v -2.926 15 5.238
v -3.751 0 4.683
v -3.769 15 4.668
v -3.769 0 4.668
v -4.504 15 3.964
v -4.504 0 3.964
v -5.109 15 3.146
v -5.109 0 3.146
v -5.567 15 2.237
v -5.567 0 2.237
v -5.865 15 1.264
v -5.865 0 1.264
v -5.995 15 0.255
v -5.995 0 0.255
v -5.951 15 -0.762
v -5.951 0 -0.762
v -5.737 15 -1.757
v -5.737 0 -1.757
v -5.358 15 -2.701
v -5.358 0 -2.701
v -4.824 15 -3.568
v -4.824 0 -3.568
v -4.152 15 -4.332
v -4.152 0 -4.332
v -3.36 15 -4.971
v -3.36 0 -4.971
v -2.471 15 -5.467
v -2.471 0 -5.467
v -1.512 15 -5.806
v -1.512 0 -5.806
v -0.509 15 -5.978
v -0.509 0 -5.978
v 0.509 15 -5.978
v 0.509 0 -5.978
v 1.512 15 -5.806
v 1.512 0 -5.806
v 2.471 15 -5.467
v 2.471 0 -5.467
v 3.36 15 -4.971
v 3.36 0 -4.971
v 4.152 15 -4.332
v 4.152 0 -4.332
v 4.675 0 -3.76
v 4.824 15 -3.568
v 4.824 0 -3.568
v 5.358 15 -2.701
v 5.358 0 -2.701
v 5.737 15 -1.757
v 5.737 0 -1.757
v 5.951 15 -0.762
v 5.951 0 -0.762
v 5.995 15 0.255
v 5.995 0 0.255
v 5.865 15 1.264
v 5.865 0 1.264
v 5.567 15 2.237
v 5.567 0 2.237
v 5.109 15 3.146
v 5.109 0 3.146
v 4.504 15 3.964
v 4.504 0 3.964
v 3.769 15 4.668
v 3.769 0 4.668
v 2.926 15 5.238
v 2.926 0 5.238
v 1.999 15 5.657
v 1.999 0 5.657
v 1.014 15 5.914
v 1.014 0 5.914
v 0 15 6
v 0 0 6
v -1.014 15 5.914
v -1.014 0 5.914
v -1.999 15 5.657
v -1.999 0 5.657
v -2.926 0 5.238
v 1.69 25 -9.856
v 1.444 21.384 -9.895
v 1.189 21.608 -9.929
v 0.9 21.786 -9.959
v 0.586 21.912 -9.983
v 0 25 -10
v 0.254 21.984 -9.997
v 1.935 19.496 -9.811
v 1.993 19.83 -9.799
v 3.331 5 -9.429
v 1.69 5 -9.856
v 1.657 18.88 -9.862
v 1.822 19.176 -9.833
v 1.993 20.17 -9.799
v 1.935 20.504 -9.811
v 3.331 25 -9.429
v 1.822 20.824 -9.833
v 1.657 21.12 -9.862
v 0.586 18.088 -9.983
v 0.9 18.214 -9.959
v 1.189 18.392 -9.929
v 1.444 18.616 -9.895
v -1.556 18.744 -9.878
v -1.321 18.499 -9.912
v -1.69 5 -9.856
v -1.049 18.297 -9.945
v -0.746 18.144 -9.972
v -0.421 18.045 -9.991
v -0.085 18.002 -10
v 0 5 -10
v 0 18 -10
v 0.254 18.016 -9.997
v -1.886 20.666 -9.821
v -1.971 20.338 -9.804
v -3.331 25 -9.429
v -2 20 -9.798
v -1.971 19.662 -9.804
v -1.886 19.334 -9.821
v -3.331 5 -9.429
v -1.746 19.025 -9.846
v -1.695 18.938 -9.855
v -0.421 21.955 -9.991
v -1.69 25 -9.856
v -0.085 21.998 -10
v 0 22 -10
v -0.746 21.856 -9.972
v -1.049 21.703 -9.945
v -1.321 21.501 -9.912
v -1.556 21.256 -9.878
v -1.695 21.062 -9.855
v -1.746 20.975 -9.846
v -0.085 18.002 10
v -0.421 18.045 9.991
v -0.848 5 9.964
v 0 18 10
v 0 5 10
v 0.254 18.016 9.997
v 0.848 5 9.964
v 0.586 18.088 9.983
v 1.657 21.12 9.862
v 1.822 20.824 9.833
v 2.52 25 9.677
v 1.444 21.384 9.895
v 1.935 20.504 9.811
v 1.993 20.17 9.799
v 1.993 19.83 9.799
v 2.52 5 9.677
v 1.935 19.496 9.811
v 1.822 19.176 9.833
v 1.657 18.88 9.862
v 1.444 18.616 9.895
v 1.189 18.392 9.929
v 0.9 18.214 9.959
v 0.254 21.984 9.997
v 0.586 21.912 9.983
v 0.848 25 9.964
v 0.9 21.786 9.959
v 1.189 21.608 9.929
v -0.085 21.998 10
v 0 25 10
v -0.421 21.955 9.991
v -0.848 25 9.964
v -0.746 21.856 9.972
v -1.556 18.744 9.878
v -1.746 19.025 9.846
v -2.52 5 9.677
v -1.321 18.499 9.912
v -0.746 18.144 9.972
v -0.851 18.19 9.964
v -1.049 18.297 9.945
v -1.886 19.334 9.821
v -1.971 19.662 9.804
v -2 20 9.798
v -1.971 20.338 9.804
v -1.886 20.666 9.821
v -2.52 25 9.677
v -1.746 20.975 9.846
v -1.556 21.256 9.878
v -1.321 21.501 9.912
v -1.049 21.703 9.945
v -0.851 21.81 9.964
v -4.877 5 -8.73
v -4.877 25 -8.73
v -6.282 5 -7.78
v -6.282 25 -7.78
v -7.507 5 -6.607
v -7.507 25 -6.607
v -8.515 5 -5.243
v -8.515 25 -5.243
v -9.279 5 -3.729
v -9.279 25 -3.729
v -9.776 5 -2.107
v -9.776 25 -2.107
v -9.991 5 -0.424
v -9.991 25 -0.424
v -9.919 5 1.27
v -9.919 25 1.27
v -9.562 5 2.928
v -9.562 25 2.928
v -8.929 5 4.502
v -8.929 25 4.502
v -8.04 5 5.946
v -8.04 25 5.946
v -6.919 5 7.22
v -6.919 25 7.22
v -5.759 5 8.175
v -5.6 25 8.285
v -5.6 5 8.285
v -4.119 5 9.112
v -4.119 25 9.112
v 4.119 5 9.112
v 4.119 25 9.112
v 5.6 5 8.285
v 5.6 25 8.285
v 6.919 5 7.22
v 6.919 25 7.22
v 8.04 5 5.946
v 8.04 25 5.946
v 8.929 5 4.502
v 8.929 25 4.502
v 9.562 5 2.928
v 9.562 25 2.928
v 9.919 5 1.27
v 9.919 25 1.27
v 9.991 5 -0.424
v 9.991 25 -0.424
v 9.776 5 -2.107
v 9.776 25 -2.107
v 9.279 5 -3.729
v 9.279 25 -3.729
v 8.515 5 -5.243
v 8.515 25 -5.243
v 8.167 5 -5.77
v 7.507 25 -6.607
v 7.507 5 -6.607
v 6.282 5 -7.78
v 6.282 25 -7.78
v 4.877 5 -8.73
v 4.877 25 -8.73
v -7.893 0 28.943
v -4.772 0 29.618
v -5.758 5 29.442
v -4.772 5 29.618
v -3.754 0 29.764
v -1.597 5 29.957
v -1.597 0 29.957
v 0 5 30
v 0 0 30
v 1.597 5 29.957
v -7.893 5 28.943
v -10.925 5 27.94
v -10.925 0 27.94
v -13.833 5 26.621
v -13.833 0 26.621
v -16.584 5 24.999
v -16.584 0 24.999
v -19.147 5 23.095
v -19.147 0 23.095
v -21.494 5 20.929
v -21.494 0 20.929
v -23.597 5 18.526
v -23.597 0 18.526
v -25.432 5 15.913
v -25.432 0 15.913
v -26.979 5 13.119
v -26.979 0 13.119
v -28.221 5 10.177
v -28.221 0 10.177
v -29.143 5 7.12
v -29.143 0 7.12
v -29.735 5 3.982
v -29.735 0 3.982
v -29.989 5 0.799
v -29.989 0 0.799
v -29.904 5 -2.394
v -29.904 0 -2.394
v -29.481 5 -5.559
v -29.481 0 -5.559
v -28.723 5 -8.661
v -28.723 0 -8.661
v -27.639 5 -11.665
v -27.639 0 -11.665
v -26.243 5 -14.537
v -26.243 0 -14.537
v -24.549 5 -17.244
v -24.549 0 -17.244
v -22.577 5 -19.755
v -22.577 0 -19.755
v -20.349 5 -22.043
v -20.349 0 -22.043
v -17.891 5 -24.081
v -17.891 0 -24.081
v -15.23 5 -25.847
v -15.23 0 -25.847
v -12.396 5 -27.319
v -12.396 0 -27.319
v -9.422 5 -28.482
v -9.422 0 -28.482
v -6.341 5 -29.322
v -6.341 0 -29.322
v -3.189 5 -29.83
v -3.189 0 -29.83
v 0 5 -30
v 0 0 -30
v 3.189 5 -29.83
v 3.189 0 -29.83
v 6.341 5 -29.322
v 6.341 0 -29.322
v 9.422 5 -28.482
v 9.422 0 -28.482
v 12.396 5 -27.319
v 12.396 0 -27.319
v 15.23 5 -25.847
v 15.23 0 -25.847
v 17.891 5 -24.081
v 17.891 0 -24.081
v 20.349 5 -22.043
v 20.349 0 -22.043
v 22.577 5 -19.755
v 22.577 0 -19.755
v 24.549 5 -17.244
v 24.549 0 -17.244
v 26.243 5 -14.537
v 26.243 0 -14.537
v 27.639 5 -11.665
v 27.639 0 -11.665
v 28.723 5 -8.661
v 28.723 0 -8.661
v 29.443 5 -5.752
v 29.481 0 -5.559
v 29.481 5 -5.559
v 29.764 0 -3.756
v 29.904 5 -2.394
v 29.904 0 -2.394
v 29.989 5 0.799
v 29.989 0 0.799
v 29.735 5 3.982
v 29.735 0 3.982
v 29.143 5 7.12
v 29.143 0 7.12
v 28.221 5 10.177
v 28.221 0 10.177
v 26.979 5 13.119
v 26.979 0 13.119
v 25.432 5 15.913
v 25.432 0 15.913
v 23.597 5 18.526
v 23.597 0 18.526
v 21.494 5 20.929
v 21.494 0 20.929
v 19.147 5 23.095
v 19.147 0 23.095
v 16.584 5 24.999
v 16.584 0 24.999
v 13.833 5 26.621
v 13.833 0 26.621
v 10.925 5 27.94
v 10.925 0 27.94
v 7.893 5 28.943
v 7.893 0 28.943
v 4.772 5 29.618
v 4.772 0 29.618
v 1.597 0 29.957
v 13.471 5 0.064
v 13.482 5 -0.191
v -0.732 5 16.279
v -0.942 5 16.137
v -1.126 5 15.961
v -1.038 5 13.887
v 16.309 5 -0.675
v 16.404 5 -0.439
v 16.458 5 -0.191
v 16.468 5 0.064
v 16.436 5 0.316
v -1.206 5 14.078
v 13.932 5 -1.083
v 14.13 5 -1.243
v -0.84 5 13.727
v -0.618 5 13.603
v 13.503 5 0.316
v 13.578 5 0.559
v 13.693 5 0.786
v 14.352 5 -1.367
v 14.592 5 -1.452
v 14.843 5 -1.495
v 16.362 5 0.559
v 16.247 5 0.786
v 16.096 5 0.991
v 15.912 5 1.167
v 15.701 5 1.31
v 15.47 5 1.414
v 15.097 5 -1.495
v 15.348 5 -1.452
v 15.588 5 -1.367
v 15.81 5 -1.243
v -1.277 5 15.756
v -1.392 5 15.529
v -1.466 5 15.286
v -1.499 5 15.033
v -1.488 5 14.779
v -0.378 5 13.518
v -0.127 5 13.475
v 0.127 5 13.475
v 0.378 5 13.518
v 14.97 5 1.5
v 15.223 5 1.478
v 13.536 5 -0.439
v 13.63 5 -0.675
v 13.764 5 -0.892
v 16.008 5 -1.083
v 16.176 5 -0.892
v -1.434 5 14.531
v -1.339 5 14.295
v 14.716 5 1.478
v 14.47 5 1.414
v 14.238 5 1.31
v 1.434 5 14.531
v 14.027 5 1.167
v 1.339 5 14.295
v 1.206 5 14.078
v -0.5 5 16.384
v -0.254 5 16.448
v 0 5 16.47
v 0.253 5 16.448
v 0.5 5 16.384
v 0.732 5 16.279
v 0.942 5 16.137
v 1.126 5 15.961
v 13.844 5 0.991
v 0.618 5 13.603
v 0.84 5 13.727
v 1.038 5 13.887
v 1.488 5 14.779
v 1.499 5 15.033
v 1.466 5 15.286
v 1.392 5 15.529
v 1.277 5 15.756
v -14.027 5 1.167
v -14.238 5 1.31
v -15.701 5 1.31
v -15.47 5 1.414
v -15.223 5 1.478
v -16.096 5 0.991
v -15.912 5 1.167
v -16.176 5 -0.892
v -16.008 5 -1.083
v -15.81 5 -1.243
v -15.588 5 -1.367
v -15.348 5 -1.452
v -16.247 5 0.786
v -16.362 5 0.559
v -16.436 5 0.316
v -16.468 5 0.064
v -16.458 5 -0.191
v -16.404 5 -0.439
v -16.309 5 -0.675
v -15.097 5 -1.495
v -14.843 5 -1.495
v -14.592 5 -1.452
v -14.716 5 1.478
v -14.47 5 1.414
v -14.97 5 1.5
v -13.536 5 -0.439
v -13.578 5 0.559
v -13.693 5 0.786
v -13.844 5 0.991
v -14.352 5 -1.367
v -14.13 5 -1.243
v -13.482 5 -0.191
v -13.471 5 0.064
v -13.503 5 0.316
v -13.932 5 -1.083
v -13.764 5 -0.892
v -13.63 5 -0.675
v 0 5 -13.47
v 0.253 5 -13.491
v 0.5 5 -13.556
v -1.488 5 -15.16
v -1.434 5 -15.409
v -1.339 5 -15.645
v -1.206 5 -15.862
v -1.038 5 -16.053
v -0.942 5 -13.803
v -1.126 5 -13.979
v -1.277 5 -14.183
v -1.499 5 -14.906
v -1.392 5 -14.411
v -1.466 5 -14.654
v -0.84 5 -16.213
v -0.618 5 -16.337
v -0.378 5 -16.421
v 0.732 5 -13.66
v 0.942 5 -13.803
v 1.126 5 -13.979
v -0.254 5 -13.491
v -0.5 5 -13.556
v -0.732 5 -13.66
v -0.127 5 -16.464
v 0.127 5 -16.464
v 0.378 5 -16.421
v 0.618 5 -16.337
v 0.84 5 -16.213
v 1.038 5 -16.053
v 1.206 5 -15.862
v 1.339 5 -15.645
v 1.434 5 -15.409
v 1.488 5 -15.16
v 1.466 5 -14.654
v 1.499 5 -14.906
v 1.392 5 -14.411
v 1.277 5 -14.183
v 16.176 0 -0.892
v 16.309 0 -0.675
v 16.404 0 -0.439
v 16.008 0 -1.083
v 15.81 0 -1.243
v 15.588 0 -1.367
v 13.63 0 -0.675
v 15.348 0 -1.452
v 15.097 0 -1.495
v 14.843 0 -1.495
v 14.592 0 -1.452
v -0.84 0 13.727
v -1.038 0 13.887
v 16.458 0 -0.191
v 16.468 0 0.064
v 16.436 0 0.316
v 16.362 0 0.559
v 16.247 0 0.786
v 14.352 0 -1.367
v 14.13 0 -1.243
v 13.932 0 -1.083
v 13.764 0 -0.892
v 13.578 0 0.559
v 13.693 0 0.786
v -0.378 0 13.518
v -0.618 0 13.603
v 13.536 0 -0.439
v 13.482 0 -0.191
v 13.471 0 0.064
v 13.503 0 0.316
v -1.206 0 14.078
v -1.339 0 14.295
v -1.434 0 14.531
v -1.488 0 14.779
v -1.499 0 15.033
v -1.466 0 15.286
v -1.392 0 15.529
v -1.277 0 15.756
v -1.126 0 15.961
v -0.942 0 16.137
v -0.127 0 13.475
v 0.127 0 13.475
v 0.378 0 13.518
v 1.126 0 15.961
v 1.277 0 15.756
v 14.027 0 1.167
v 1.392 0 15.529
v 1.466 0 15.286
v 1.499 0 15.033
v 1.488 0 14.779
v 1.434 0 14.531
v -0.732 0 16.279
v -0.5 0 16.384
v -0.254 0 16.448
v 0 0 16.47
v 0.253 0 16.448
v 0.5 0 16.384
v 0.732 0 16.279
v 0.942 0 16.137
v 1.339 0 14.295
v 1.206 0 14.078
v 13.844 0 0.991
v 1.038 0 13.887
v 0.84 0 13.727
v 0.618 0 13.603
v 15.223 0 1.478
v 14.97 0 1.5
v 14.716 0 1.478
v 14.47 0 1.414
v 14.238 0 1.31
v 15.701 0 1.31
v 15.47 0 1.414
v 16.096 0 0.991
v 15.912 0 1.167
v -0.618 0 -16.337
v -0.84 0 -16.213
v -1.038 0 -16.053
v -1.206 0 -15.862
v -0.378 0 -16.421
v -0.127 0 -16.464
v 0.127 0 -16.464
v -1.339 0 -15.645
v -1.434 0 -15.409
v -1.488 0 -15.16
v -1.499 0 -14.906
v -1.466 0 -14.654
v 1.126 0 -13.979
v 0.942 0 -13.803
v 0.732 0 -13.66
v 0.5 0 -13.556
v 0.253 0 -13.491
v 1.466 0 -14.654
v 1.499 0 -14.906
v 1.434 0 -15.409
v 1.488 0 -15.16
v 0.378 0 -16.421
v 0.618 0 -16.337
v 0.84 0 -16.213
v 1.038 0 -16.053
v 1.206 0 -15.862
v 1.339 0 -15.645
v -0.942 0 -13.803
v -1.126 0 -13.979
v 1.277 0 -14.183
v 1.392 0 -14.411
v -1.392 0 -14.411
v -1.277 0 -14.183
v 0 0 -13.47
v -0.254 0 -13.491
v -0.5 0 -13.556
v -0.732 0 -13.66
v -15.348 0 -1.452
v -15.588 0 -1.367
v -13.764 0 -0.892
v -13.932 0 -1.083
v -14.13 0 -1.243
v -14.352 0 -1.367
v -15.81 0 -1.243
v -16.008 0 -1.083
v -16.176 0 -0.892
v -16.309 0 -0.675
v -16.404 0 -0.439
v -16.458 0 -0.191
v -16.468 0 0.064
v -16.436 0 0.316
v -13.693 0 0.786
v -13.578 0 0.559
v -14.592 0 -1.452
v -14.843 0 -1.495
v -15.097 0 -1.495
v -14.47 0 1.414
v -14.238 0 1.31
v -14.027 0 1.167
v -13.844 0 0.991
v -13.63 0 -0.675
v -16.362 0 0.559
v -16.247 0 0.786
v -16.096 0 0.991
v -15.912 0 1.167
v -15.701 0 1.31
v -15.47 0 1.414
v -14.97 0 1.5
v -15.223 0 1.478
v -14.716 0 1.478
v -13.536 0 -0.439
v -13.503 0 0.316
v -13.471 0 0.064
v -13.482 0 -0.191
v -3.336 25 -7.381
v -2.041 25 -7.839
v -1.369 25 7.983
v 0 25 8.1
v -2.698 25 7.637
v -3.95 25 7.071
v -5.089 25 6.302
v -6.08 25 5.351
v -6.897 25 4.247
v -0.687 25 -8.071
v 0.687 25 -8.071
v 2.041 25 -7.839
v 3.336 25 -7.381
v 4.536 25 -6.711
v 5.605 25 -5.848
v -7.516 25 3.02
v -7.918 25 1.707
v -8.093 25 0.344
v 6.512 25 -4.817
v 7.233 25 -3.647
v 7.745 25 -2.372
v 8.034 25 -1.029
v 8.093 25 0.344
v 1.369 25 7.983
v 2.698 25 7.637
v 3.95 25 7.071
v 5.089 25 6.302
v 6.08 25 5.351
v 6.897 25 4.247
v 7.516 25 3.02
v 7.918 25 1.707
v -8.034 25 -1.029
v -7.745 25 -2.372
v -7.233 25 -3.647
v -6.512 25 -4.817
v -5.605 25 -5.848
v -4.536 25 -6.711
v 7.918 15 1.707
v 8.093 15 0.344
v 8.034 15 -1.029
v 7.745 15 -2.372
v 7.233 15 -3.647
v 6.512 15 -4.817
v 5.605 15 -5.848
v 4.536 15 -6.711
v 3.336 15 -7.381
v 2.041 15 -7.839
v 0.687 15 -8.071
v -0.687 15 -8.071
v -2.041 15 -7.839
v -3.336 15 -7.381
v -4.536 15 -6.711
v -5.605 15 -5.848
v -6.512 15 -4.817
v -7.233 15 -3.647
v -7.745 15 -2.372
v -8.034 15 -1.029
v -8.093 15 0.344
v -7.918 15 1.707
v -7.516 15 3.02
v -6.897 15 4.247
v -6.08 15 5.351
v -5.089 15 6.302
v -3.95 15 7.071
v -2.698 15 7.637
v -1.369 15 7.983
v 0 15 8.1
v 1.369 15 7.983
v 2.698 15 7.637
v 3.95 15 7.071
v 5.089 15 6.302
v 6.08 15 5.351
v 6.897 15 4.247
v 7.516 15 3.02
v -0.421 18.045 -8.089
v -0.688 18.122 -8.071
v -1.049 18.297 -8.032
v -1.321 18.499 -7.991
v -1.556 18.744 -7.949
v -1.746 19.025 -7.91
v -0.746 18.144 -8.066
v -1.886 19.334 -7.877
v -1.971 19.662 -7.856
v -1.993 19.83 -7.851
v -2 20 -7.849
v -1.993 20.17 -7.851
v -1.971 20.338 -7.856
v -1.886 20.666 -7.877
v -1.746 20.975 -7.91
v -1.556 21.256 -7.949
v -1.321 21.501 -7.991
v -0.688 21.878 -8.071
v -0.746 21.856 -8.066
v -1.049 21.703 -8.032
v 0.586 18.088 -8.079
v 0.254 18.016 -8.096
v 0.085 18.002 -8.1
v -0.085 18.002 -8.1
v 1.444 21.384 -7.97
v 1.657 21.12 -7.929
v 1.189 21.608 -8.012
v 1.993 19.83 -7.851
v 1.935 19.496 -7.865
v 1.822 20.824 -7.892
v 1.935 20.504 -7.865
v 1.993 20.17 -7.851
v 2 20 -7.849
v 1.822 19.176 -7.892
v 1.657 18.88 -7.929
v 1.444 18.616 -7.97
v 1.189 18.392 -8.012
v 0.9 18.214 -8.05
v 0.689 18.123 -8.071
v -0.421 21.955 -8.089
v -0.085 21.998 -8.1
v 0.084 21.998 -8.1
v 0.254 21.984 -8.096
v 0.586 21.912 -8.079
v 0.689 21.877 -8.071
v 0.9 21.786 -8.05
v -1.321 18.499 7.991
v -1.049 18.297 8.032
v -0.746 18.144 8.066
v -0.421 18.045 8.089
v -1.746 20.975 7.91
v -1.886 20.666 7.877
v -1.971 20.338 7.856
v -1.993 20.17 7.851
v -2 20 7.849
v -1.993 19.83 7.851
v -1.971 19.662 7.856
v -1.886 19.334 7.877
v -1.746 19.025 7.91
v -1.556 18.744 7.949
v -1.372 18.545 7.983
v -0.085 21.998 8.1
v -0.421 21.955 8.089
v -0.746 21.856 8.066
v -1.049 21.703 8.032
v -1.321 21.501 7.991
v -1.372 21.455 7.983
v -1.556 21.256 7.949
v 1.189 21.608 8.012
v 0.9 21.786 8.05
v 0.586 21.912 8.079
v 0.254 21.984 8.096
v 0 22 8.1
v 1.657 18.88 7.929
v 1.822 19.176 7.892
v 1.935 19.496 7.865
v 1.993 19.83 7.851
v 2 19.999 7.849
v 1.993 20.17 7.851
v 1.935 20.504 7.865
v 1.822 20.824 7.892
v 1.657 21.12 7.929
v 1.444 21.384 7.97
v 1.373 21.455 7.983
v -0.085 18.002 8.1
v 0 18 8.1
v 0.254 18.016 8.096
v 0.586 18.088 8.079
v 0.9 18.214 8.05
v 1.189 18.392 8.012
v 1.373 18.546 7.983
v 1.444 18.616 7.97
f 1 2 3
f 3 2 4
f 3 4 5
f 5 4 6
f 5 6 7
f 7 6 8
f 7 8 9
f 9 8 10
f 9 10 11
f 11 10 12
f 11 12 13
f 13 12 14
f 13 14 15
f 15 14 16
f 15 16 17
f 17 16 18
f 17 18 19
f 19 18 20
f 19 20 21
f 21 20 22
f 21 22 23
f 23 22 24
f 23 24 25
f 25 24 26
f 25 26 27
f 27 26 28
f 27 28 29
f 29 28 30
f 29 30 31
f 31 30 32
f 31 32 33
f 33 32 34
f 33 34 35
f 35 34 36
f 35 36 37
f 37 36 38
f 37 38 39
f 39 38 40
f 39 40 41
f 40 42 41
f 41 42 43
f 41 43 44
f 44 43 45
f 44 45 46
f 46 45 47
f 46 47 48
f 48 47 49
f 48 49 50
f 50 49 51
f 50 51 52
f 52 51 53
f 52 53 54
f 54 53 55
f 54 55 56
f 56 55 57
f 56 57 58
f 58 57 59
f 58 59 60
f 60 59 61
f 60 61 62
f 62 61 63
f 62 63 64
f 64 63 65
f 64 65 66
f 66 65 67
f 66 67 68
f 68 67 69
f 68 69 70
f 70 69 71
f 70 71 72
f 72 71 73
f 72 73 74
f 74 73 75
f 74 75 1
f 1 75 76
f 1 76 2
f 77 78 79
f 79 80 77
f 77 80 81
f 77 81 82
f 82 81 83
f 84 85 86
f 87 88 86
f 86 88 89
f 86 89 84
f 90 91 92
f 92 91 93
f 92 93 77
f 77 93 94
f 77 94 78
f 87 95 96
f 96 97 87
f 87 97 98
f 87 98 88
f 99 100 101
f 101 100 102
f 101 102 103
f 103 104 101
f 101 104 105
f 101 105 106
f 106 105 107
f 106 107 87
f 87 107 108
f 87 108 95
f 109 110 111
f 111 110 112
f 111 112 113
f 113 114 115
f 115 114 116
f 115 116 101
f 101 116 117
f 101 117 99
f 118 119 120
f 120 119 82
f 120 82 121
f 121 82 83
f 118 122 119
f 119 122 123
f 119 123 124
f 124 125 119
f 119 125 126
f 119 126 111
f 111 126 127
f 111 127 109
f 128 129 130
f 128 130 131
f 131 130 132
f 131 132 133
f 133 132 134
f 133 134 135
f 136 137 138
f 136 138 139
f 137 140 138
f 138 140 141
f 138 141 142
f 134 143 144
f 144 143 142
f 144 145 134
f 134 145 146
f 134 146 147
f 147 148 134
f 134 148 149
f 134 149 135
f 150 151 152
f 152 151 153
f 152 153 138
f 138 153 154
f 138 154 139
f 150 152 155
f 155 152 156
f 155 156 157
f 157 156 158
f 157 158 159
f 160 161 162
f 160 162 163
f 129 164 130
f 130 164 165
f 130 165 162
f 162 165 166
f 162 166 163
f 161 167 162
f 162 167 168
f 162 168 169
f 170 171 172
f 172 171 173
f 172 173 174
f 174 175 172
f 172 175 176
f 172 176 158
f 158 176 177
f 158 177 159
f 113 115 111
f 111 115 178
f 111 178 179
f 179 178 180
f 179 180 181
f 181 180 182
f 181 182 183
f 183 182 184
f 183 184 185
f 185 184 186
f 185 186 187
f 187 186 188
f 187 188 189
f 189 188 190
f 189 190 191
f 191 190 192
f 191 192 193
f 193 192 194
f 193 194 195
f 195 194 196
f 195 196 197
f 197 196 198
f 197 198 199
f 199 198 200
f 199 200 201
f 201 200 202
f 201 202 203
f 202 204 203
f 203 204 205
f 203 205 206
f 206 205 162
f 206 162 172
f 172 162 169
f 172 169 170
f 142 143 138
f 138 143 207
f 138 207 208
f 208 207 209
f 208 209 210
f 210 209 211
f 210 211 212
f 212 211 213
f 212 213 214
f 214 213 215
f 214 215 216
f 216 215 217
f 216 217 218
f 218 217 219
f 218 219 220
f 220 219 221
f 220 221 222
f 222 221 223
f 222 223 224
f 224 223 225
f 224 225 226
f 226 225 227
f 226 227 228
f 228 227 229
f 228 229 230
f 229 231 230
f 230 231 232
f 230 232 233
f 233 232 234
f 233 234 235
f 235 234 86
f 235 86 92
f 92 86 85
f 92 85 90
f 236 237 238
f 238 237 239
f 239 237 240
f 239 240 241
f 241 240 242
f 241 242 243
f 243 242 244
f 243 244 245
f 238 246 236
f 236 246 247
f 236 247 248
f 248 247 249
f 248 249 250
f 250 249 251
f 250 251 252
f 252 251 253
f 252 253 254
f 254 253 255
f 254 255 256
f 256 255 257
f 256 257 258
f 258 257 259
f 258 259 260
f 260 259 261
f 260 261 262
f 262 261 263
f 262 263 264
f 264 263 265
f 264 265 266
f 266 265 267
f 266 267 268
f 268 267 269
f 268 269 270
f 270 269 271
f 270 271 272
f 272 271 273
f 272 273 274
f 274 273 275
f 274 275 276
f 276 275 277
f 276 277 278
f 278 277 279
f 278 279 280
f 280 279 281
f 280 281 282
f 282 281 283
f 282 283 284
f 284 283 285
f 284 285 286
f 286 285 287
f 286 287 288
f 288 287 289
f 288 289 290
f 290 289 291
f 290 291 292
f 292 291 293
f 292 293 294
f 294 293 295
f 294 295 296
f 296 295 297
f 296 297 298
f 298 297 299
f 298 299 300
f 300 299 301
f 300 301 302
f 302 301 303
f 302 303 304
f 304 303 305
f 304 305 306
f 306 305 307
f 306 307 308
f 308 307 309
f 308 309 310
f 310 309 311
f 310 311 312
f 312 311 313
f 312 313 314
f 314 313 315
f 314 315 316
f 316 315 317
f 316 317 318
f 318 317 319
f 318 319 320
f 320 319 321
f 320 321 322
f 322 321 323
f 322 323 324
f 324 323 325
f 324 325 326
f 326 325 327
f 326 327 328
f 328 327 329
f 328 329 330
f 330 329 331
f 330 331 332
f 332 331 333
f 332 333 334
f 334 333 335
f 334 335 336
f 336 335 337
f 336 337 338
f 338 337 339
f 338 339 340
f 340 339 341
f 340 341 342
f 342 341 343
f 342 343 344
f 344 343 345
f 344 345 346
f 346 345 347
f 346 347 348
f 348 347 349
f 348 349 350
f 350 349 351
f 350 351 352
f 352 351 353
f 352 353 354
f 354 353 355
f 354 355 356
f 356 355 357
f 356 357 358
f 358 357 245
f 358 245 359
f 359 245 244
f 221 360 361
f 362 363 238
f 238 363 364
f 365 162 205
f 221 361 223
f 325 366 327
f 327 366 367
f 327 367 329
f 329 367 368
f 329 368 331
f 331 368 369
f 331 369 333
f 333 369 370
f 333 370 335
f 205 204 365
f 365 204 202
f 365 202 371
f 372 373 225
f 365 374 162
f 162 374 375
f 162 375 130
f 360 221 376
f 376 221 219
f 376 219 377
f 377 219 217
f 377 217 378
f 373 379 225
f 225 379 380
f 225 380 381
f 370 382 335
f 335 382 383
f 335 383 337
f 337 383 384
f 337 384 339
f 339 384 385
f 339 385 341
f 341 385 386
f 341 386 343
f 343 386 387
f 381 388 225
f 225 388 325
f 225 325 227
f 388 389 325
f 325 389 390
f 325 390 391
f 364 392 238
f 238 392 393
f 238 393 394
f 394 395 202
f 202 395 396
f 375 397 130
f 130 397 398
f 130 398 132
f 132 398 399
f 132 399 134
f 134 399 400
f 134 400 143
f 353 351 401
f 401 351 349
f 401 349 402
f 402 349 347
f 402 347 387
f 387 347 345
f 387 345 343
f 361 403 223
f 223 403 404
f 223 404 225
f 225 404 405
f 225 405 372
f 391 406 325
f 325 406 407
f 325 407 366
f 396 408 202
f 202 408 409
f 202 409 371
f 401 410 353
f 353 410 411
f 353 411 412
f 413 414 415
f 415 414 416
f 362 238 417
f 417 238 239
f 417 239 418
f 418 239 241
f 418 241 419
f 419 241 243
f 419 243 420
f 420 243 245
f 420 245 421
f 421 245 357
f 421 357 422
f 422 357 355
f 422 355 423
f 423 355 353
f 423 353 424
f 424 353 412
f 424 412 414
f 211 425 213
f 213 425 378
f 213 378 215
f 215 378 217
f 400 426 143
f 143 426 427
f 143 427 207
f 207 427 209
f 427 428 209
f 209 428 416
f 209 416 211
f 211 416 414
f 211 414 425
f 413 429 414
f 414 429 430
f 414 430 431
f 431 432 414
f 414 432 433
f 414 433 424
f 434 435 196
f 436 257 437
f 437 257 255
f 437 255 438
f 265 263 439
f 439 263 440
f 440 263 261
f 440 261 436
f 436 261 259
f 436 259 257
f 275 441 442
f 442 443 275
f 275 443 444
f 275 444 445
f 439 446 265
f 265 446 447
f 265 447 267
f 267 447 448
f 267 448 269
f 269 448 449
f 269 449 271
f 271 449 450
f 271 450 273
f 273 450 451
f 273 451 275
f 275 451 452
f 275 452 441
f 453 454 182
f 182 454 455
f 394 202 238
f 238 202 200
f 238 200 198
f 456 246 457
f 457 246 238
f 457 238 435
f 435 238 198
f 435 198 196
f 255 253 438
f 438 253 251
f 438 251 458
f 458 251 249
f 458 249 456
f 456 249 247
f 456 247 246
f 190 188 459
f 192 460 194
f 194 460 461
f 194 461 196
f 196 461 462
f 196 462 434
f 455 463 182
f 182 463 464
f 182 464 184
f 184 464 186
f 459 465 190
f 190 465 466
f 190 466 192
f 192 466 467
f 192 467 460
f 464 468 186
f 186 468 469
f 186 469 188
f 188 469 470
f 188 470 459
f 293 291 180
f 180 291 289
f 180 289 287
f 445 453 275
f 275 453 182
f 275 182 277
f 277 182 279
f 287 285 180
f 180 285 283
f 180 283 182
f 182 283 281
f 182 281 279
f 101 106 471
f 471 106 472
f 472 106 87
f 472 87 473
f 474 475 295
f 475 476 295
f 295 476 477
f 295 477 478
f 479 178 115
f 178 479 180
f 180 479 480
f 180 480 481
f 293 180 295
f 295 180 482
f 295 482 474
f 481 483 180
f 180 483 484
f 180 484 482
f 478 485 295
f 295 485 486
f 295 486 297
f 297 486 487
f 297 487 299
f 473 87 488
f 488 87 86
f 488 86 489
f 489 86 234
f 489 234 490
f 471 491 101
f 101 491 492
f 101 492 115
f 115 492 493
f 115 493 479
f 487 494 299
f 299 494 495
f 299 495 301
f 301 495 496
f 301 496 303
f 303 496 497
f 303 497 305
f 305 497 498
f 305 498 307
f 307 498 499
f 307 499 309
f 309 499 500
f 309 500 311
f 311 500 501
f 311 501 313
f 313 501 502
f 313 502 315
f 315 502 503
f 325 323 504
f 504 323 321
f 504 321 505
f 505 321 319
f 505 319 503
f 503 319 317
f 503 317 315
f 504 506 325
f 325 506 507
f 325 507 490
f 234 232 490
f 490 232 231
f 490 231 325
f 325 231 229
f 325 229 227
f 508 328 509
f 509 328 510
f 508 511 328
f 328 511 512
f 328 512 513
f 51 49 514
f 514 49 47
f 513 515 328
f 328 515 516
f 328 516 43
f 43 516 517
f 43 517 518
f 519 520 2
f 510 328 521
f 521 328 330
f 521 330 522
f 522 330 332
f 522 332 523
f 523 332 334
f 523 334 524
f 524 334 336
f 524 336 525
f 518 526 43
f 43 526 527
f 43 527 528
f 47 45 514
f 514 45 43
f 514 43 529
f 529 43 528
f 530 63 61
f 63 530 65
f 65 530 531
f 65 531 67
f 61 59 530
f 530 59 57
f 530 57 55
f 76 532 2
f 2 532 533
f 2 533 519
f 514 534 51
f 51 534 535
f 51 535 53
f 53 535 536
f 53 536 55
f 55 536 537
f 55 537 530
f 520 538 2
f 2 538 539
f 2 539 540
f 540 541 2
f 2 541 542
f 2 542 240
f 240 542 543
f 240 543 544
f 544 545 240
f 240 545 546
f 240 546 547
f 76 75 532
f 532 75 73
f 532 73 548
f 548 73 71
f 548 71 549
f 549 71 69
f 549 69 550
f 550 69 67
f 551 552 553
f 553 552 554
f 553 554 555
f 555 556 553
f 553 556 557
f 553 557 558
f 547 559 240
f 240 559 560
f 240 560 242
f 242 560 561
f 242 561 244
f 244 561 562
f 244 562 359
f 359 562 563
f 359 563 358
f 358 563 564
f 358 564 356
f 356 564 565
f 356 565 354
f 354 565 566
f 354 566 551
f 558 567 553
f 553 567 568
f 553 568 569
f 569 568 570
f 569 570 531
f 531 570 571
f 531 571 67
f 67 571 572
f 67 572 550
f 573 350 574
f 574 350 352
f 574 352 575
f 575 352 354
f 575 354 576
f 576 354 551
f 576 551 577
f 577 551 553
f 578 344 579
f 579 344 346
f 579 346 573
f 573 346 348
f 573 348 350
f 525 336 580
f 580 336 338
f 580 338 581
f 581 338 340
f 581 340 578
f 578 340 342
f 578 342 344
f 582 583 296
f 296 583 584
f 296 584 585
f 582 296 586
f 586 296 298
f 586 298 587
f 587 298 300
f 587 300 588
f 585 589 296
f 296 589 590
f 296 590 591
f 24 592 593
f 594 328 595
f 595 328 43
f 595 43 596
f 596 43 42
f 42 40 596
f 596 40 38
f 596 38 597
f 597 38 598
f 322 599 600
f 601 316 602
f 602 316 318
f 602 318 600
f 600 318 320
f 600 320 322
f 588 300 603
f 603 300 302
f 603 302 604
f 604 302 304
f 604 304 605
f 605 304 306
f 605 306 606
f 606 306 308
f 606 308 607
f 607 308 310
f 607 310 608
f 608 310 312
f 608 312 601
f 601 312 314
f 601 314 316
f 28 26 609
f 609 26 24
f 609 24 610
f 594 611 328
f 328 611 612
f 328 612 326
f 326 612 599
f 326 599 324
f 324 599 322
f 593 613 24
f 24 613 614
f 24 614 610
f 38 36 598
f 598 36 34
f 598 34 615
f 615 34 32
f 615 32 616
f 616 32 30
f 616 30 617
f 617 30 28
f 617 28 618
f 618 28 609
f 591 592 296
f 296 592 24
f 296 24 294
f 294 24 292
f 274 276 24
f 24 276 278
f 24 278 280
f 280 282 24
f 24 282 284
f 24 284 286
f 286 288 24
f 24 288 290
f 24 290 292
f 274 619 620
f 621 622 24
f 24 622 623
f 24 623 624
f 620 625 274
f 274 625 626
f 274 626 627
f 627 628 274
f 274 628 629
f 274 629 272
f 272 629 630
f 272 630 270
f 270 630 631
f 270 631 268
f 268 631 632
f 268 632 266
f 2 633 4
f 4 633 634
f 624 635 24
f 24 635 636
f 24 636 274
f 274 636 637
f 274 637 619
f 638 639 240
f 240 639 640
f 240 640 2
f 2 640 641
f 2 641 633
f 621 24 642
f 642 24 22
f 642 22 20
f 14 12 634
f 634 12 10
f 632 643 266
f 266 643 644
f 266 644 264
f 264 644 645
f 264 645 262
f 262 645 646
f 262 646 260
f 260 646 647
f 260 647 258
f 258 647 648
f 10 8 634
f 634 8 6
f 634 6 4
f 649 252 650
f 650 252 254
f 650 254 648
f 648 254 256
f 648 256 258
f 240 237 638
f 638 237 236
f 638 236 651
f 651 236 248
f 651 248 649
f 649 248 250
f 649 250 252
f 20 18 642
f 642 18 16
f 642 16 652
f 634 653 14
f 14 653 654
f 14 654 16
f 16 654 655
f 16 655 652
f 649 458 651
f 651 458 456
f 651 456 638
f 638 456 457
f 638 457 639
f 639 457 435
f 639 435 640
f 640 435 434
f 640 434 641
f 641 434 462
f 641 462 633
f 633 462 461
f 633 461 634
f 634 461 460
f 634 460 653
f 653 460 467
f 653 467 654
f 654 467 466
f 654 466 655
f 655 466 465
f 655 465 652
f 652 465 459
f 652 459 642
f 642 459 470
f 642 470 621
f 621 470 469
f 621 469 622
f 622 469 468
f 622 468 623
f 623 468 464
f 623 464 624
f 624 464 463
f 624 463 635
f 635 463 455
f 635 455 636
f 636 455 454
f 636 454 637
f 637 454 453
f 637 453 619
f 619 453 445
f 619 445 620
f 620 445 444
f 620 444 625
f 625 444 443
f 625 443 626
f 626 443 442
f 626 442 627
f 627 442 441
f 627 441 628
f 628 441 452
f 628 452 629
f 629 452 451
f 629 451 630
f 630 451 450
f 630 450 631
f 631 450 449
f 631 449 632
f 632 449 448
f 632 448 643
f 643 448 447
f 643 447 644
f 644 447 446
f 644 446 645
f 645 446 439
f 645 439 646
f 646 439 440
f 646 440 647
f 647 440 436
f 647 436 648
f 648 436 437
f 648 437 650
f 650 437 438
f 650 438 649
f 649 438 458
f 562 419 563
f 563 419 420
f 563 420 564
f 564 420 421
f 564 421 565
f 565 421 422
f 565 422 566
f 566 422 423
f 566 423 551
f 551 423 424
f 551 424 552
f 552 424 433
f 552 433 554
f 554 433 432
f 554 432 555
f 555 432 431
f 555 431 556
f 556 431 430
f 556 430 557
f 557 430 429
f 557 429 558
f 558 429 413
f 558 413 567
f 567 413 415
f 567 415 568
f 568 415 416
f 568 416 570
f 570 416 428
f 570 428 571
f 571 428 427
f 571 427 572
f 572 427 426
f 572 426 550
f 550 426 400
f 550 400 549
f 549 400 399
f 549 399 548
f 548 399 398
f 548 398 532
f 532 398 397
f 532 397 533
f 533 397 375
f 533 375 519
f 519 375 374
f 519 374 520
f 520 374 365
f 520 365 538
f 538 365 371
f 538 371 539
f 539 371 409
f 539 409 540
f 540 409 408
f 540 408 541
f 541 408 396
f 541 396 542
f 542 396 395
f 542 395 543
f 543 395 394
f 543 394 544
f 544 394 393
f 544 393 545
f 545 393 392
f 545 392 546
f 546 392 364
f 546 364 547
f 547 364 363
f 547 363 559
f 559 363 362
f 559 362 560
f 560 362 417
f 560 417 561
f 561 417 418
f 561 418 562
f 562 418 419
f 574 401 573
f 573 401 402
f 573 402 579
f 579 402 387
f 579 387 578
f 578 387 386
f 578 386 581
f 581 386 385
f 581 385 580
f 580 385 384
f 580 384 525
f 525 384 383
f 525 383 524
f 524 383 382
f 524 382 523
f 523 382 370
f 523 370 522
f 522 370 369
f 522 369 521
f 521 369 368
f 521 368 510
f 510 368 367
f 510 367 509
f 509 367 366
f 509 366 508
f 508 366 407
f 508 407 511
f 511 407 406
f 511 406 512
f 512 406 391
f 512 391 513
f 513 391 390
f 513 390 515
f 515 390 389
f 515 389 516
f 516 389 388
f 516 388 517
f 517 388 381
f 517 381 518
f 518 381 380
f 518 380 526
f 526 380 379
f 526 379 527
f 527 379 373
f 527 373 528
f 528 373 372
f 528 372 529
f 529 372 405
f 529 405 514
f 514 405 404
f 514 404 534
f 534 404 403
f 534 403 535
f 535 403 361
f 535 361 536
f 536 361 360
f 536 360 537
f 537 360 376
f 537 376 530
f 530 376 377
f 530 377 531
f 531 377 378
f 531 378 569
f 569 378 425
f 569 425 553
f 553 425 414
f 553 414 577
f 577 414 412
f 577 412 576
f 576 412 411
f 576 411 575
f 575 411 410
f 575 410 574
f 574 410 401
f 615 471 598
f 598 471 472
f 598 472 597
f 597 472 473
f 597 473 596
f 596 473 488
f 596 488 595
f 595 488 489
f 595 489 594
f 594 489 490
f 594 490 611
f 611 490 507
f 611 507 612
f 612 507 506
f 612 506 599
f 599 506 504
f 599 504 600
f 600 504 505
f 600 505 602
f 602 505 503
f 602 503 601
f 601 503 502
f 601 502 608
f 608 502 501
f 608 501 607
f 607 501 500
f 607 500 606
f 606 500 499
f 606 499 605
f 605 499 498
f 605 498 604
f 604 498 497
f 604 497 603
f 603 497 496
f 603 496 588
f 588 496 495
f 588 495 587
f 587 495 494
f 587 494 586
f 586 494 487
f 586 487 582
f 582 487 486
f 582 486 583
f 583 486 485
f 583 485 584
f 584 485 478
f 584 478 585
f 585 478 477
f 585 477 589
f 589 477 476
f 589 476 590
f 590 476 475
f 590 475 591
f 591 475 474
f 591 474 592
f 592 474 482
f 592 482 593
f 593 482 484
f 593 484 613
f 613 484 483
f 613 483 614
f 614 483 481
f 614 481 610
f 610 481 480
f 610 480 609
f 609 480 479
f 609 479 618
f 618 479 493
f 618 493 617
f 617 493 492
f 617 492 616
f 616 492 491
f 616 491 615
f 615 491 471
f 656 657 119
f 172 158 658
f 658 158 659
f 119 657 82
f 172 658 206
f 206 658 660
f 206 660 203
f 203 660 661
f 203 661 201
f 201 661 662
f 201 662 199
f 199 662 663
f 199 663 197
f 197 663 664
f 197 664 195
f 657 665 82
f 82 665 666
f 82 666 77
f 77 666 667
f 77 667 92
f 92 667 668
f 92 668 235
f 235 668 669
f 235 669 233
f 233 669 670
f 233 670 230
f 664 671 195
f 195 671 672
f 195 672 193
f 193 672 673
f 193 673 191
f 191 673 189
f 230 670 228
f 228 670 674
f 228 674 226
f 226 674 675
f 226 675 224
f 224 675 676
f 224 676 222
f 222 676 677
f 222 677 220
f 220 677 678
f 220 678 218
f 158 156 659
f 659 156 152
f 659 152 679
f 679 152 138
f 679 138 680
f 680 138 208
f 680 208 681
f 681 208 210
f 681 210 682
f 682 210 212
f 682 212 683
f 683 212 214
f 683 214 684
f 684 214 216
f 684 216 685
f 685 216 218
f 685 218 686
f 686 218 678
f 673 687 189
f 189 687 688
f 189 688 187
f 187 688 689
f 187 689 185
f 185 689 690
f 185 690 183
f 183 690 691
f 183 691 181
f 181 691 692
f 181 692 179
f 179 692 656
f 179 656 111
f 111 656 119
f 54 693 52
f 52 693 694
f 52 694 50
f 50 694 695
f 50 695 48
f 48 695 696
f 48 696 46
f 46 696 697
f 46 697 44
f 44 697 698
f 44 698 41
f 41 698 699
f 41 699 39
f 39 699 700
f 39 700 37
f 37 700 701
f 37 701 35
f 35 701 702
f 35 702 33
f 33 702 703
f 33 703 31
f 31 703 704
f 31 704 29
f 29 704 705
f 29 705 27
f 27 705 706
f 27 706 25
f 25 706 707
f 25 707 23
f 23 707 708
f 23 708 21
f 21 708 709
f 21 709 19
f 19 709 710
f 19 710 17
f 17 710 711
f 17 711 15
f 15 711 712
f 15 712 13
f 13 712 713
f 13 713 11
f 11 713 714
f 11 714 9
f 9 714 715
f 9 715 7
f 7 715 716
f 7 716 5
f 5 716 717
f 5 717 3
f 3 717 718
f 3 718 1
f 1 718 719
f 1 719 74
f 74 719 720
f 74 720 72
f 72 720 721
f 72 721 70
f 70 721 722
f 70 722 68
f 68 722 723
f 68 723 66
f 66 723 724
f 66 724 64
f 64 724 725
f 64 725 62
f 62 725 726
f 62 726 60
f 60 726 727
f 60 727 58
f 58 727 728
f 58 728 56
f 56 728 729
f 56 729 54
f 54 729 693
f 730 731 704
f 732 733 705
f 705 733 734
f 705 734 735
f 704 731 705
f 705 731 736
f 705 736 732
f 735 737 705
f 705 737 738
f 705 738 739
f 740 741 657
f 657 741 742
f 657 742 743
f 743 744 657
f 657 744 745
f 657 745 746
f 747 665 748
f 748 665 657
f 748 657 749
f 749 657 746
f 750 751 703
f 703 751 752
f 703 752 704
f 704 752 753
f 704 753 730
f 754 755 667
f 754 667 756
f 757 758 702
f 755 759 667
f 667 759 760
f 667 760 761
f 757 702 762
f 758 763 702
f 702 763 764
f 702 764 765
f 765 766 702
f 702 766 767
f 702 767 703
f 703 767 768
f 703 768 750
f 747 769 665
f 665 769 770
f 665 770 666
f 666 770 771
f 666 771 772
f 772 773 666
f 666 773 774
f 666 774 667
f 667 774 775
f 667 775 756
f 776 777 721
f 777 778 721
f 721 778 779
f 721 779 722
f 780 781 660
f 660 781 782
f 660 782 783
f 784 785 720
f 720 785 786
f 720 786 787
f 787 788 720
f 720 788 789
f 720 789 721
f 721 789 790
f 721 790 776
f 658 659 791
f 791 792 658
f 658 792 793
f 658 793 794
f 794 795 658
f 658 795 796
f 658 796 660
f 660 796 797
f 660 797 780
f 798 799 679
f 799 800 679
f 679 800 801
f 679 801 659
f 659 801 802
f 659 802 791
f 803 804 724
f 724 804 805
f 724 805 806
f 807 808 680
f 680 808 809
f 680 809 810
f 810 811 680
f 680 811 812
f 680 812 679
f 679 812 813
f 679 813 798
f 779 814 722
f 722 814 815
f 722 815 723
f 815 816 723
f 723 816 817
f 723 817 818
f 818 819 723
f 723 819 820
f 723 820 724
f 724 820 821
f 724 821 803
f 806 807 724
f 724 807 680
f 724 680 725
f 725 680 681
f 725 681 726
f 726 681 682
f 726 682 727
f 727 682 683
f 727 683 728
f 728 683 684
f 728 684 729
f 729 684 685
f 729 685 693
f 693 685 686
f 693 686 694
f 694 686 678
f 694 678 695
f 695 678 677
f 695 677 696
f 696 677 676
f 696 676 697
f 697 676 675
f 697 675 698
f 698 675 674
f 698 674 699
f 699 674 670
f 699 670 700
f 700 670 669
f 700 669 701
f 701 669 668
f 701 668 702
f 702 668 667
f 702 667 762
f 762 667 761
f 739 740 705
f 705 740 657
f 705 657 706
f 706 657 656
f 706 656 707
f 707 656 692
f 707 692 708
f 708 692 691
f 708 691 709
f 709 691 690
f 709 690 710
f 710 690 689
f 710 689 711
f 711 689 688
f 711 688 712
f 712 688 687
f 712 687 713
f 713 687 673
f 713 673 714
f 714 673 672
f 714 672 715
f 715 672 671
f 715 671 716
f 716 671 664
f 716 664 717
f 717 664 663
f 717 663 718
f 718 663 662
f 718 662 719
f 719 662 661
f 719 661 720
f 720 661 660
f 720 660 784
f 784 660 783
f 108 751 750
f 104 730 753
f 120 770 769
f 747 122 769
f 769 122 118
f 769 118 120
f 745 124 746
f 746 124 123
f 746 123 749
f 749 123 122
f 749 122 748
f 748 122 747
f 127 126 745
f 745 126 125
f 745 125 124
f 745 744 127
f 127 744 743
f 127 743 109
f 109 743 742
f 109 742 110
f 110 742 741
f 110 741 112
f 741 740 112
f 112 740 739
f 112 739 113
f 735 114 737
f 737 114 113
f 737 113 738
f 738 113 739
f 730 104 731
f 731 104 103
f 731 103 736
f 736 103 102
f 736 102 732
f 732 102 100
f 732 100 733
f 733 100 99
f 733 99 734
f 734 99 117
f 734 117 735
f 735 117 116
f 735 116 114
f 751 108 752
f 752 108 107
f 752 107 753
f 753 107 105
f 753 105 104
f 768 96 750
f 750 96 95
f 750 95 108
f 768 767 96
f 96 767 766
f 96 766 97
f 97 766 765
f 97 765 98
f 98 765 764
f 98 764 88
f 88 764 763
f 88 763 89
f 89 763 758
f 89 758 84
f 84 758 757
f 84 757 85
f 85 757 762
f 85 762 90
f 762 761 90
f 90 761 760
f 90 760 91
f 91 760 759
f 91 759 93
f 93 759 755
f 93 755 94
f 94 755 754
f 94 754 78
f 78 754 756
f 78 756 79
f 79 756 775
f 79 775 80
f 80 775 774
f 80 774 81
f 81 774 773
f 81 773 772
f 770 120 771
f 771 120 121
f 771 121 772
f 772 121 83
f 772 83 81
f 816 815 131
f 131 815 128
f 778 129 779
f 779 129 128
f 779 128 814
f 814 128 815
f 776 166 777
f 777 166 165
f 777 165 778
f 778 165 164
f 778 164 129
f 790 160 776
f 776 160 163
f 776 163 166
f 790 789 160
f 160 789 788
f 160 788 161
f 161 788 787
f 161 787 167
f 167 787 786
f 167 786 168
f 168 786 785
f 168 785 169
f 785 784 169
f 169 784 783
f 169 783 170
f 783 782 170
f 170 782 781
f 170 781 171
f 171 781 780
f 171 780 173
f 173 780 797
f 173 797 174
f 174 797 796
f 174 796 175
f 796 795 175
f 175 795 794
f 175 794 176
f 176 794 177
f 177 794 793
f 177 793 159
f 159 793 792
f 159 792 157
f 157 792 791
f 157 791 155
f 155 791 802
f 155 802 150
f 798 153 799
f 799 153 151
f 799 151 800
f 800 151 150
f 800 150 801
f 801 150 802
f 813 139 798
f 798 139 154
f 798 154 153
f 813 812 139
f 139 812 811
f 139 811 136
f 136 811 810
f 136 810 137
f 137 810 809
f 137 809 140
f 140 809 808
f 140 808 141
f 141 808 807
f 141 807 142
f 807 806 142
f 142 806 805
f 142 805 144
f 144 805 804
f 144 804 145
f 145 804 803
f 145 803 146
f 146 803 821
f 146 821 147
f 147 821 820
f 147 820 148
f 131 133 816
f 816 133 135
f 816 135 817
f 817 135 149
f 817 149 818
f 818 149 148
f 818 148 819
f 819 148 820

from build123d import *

# Parameters (mm, degrees)
SKETCH1_R           = 30
BOSS_EXTRUDE1_DEPTH = 5
SKETCH2_R           = 10
BOSS_EXTRUDE2_DEPTH = 90
SKETCH4_R           = 6
CUT_EXTRUDE2_DEPTH  = 200
SKETCH5_R           = 1.5
CUT_EXTRUDE3_DEPTH  = 10
SKETCH6_R           = 8
CUT_EXTRUDE4_DEPTH  = 10
SKETCH8_R           = 2
CUT_EXTRUDE5_DEPTH  = 20
CUT_EXTRUDE6_START  = -70
SKETCH10_R          = 10
CUT_EXTRUDE6_DEPTH  = 70
SKETCH12_R          = 8.1
CUT_EXTRUDE7_DEPTH  = 10
SKETCH13_R          = 2
CUT_EXTRUDE8_DEPTH  = 20


with BuildPart() as part:
    # Sketch1 → Boss-Extrude1 (new body)
    with BuildSketch(Plane(origin=(0, 0, 0), x_dir=(1, 0, 0), z_dir=(0, 1, 0))):
        with Locations(Location((0, 0, 0), (0, 0, 270))):
            Circle(SKETCH1_R)
    extrude(amount=BOSS_EXTRUDE1_DEPTH)

    # Sketch2 → Boss-Extrude2 (add)
    with BuildSketch(Plane(origin=(0, 5, 0), x_dir=(1, 0, 0), z_dir=(0, 1, 0))):
        with Locations(Location((0, 0, 0), (0, 0, 90))):
            Circle(SKETCH2_R)
    extrude(amount=BOSS_EXTRUDE2_DEPTH)

    # Sketch4 → Cut-Extrude2 (cut)
    with BuildSketch(Plane(origin=(0, 95, 0), x_dir=(1, 0, 0), z_dir=(0, 1, 0))):
        with Locations(Location((0, 0, 0), (0, 0, 270))):
            Circle(SKETCH4_R)
    extrude(amount=-CUT_EXTRUDE2_DEPTH, mode=Mode.SUBTRACT)

    # Sketch5 → Cut-Extrude3 (cut)
    with BuildSketch(Plane(origin=(0, 5, 0), x_dir=(1, 0, 0), z_dir=(0, 1, 0))):
        with Locations(Location((0, 14.969819474, 0), (0, 0, 270))):
            Circle(SKETCH5_R)
        with Locations(Location((14.969819474, 0, 0), (0, 0, 270))):
            Circle(SKETCH5_R)
        with Locations(Location((0, -14.969819474, 0), (0, 0, 270))):
            Circle(SKETCH5_R)
        with Locations(Location((-14.969819474, 0, 0), (0, 0, 270))):
            Circle(SKETCH5_R)
    extrude(amount=-CUT_EXTRUDE3_DEPTH, mode=Mode.SUBTRACT)

    # Sketch6 → Cut-Extrude4 (cut)
    with BuildSketch(Plane(origin=(0, 95, 0), x_dir=(1, 0, 0), z_dir=(0, 1, 0))):
        with Locations(Location((0, 0, 0), (0, 0, 270))):
            Circle(SKETCH6_R)
    extrude(amount=-CUT_EXTRUDE4_DEPTH, mode=Mode.SUBTRACT)

    # Sketch8 → Cut-Extrude5 (cut)
    with BuildSketch(Plane(origin=(0, 95, -10), x_dir=(-1, 0, 0), z_dir=(0, 0, -1))):
        with Locations((0, -5)):
            Circle(SKETCH8_R)
    extrude(amount=-CUT_EXTRUDE5_DEPTH, mode=Mode.SUBTRACT)

    # Sketch10 → Cut-Extrude6 (cut)
    with BuildSketch(Plane(origin=(0, 95, 0), x_dir=(1, 0, 0), z_dir=(0, 1, 0)).offset(CUT_EXTRUDE6_START)):
        with Locations(Location((0, 0, 0), (0, 0, 90))):
            Circle(SKETCH10_R)
    extrude(amount=CUT_EXTRUDE6_DEPTH, mode=Mode.SUBTRACT)

    # Sketch12 → Cut-Extrude7 (cut)
    with BuildSketch(Plane(origin=(0, 25, 0), x_dir=(1, 0, 0), z_dir=(0, 1, 0))):
        with Locations(Location((0, 0, 0), (0, 0, 270))):
            Circle(SKETCH12_R)
    extrude(amount=-CUT_EXTRUDE7_DEPTH, mode=Mode.SUBTRACT)

    # Sketch13 → Cut-Extrude8 (cut)
    with BuildSketch(Plane(origin=(0, 95, -10), x_dir=(-1, 0, 0), z_dir=(0, 0, -1))):
        with Locations((0, -75)):
            Circle(SKETCH13_R)
    extrude(amount=-CUT_EXTRUDE8_DEPTH, mode=Mode.SUBTRACT)


solid = part.part
